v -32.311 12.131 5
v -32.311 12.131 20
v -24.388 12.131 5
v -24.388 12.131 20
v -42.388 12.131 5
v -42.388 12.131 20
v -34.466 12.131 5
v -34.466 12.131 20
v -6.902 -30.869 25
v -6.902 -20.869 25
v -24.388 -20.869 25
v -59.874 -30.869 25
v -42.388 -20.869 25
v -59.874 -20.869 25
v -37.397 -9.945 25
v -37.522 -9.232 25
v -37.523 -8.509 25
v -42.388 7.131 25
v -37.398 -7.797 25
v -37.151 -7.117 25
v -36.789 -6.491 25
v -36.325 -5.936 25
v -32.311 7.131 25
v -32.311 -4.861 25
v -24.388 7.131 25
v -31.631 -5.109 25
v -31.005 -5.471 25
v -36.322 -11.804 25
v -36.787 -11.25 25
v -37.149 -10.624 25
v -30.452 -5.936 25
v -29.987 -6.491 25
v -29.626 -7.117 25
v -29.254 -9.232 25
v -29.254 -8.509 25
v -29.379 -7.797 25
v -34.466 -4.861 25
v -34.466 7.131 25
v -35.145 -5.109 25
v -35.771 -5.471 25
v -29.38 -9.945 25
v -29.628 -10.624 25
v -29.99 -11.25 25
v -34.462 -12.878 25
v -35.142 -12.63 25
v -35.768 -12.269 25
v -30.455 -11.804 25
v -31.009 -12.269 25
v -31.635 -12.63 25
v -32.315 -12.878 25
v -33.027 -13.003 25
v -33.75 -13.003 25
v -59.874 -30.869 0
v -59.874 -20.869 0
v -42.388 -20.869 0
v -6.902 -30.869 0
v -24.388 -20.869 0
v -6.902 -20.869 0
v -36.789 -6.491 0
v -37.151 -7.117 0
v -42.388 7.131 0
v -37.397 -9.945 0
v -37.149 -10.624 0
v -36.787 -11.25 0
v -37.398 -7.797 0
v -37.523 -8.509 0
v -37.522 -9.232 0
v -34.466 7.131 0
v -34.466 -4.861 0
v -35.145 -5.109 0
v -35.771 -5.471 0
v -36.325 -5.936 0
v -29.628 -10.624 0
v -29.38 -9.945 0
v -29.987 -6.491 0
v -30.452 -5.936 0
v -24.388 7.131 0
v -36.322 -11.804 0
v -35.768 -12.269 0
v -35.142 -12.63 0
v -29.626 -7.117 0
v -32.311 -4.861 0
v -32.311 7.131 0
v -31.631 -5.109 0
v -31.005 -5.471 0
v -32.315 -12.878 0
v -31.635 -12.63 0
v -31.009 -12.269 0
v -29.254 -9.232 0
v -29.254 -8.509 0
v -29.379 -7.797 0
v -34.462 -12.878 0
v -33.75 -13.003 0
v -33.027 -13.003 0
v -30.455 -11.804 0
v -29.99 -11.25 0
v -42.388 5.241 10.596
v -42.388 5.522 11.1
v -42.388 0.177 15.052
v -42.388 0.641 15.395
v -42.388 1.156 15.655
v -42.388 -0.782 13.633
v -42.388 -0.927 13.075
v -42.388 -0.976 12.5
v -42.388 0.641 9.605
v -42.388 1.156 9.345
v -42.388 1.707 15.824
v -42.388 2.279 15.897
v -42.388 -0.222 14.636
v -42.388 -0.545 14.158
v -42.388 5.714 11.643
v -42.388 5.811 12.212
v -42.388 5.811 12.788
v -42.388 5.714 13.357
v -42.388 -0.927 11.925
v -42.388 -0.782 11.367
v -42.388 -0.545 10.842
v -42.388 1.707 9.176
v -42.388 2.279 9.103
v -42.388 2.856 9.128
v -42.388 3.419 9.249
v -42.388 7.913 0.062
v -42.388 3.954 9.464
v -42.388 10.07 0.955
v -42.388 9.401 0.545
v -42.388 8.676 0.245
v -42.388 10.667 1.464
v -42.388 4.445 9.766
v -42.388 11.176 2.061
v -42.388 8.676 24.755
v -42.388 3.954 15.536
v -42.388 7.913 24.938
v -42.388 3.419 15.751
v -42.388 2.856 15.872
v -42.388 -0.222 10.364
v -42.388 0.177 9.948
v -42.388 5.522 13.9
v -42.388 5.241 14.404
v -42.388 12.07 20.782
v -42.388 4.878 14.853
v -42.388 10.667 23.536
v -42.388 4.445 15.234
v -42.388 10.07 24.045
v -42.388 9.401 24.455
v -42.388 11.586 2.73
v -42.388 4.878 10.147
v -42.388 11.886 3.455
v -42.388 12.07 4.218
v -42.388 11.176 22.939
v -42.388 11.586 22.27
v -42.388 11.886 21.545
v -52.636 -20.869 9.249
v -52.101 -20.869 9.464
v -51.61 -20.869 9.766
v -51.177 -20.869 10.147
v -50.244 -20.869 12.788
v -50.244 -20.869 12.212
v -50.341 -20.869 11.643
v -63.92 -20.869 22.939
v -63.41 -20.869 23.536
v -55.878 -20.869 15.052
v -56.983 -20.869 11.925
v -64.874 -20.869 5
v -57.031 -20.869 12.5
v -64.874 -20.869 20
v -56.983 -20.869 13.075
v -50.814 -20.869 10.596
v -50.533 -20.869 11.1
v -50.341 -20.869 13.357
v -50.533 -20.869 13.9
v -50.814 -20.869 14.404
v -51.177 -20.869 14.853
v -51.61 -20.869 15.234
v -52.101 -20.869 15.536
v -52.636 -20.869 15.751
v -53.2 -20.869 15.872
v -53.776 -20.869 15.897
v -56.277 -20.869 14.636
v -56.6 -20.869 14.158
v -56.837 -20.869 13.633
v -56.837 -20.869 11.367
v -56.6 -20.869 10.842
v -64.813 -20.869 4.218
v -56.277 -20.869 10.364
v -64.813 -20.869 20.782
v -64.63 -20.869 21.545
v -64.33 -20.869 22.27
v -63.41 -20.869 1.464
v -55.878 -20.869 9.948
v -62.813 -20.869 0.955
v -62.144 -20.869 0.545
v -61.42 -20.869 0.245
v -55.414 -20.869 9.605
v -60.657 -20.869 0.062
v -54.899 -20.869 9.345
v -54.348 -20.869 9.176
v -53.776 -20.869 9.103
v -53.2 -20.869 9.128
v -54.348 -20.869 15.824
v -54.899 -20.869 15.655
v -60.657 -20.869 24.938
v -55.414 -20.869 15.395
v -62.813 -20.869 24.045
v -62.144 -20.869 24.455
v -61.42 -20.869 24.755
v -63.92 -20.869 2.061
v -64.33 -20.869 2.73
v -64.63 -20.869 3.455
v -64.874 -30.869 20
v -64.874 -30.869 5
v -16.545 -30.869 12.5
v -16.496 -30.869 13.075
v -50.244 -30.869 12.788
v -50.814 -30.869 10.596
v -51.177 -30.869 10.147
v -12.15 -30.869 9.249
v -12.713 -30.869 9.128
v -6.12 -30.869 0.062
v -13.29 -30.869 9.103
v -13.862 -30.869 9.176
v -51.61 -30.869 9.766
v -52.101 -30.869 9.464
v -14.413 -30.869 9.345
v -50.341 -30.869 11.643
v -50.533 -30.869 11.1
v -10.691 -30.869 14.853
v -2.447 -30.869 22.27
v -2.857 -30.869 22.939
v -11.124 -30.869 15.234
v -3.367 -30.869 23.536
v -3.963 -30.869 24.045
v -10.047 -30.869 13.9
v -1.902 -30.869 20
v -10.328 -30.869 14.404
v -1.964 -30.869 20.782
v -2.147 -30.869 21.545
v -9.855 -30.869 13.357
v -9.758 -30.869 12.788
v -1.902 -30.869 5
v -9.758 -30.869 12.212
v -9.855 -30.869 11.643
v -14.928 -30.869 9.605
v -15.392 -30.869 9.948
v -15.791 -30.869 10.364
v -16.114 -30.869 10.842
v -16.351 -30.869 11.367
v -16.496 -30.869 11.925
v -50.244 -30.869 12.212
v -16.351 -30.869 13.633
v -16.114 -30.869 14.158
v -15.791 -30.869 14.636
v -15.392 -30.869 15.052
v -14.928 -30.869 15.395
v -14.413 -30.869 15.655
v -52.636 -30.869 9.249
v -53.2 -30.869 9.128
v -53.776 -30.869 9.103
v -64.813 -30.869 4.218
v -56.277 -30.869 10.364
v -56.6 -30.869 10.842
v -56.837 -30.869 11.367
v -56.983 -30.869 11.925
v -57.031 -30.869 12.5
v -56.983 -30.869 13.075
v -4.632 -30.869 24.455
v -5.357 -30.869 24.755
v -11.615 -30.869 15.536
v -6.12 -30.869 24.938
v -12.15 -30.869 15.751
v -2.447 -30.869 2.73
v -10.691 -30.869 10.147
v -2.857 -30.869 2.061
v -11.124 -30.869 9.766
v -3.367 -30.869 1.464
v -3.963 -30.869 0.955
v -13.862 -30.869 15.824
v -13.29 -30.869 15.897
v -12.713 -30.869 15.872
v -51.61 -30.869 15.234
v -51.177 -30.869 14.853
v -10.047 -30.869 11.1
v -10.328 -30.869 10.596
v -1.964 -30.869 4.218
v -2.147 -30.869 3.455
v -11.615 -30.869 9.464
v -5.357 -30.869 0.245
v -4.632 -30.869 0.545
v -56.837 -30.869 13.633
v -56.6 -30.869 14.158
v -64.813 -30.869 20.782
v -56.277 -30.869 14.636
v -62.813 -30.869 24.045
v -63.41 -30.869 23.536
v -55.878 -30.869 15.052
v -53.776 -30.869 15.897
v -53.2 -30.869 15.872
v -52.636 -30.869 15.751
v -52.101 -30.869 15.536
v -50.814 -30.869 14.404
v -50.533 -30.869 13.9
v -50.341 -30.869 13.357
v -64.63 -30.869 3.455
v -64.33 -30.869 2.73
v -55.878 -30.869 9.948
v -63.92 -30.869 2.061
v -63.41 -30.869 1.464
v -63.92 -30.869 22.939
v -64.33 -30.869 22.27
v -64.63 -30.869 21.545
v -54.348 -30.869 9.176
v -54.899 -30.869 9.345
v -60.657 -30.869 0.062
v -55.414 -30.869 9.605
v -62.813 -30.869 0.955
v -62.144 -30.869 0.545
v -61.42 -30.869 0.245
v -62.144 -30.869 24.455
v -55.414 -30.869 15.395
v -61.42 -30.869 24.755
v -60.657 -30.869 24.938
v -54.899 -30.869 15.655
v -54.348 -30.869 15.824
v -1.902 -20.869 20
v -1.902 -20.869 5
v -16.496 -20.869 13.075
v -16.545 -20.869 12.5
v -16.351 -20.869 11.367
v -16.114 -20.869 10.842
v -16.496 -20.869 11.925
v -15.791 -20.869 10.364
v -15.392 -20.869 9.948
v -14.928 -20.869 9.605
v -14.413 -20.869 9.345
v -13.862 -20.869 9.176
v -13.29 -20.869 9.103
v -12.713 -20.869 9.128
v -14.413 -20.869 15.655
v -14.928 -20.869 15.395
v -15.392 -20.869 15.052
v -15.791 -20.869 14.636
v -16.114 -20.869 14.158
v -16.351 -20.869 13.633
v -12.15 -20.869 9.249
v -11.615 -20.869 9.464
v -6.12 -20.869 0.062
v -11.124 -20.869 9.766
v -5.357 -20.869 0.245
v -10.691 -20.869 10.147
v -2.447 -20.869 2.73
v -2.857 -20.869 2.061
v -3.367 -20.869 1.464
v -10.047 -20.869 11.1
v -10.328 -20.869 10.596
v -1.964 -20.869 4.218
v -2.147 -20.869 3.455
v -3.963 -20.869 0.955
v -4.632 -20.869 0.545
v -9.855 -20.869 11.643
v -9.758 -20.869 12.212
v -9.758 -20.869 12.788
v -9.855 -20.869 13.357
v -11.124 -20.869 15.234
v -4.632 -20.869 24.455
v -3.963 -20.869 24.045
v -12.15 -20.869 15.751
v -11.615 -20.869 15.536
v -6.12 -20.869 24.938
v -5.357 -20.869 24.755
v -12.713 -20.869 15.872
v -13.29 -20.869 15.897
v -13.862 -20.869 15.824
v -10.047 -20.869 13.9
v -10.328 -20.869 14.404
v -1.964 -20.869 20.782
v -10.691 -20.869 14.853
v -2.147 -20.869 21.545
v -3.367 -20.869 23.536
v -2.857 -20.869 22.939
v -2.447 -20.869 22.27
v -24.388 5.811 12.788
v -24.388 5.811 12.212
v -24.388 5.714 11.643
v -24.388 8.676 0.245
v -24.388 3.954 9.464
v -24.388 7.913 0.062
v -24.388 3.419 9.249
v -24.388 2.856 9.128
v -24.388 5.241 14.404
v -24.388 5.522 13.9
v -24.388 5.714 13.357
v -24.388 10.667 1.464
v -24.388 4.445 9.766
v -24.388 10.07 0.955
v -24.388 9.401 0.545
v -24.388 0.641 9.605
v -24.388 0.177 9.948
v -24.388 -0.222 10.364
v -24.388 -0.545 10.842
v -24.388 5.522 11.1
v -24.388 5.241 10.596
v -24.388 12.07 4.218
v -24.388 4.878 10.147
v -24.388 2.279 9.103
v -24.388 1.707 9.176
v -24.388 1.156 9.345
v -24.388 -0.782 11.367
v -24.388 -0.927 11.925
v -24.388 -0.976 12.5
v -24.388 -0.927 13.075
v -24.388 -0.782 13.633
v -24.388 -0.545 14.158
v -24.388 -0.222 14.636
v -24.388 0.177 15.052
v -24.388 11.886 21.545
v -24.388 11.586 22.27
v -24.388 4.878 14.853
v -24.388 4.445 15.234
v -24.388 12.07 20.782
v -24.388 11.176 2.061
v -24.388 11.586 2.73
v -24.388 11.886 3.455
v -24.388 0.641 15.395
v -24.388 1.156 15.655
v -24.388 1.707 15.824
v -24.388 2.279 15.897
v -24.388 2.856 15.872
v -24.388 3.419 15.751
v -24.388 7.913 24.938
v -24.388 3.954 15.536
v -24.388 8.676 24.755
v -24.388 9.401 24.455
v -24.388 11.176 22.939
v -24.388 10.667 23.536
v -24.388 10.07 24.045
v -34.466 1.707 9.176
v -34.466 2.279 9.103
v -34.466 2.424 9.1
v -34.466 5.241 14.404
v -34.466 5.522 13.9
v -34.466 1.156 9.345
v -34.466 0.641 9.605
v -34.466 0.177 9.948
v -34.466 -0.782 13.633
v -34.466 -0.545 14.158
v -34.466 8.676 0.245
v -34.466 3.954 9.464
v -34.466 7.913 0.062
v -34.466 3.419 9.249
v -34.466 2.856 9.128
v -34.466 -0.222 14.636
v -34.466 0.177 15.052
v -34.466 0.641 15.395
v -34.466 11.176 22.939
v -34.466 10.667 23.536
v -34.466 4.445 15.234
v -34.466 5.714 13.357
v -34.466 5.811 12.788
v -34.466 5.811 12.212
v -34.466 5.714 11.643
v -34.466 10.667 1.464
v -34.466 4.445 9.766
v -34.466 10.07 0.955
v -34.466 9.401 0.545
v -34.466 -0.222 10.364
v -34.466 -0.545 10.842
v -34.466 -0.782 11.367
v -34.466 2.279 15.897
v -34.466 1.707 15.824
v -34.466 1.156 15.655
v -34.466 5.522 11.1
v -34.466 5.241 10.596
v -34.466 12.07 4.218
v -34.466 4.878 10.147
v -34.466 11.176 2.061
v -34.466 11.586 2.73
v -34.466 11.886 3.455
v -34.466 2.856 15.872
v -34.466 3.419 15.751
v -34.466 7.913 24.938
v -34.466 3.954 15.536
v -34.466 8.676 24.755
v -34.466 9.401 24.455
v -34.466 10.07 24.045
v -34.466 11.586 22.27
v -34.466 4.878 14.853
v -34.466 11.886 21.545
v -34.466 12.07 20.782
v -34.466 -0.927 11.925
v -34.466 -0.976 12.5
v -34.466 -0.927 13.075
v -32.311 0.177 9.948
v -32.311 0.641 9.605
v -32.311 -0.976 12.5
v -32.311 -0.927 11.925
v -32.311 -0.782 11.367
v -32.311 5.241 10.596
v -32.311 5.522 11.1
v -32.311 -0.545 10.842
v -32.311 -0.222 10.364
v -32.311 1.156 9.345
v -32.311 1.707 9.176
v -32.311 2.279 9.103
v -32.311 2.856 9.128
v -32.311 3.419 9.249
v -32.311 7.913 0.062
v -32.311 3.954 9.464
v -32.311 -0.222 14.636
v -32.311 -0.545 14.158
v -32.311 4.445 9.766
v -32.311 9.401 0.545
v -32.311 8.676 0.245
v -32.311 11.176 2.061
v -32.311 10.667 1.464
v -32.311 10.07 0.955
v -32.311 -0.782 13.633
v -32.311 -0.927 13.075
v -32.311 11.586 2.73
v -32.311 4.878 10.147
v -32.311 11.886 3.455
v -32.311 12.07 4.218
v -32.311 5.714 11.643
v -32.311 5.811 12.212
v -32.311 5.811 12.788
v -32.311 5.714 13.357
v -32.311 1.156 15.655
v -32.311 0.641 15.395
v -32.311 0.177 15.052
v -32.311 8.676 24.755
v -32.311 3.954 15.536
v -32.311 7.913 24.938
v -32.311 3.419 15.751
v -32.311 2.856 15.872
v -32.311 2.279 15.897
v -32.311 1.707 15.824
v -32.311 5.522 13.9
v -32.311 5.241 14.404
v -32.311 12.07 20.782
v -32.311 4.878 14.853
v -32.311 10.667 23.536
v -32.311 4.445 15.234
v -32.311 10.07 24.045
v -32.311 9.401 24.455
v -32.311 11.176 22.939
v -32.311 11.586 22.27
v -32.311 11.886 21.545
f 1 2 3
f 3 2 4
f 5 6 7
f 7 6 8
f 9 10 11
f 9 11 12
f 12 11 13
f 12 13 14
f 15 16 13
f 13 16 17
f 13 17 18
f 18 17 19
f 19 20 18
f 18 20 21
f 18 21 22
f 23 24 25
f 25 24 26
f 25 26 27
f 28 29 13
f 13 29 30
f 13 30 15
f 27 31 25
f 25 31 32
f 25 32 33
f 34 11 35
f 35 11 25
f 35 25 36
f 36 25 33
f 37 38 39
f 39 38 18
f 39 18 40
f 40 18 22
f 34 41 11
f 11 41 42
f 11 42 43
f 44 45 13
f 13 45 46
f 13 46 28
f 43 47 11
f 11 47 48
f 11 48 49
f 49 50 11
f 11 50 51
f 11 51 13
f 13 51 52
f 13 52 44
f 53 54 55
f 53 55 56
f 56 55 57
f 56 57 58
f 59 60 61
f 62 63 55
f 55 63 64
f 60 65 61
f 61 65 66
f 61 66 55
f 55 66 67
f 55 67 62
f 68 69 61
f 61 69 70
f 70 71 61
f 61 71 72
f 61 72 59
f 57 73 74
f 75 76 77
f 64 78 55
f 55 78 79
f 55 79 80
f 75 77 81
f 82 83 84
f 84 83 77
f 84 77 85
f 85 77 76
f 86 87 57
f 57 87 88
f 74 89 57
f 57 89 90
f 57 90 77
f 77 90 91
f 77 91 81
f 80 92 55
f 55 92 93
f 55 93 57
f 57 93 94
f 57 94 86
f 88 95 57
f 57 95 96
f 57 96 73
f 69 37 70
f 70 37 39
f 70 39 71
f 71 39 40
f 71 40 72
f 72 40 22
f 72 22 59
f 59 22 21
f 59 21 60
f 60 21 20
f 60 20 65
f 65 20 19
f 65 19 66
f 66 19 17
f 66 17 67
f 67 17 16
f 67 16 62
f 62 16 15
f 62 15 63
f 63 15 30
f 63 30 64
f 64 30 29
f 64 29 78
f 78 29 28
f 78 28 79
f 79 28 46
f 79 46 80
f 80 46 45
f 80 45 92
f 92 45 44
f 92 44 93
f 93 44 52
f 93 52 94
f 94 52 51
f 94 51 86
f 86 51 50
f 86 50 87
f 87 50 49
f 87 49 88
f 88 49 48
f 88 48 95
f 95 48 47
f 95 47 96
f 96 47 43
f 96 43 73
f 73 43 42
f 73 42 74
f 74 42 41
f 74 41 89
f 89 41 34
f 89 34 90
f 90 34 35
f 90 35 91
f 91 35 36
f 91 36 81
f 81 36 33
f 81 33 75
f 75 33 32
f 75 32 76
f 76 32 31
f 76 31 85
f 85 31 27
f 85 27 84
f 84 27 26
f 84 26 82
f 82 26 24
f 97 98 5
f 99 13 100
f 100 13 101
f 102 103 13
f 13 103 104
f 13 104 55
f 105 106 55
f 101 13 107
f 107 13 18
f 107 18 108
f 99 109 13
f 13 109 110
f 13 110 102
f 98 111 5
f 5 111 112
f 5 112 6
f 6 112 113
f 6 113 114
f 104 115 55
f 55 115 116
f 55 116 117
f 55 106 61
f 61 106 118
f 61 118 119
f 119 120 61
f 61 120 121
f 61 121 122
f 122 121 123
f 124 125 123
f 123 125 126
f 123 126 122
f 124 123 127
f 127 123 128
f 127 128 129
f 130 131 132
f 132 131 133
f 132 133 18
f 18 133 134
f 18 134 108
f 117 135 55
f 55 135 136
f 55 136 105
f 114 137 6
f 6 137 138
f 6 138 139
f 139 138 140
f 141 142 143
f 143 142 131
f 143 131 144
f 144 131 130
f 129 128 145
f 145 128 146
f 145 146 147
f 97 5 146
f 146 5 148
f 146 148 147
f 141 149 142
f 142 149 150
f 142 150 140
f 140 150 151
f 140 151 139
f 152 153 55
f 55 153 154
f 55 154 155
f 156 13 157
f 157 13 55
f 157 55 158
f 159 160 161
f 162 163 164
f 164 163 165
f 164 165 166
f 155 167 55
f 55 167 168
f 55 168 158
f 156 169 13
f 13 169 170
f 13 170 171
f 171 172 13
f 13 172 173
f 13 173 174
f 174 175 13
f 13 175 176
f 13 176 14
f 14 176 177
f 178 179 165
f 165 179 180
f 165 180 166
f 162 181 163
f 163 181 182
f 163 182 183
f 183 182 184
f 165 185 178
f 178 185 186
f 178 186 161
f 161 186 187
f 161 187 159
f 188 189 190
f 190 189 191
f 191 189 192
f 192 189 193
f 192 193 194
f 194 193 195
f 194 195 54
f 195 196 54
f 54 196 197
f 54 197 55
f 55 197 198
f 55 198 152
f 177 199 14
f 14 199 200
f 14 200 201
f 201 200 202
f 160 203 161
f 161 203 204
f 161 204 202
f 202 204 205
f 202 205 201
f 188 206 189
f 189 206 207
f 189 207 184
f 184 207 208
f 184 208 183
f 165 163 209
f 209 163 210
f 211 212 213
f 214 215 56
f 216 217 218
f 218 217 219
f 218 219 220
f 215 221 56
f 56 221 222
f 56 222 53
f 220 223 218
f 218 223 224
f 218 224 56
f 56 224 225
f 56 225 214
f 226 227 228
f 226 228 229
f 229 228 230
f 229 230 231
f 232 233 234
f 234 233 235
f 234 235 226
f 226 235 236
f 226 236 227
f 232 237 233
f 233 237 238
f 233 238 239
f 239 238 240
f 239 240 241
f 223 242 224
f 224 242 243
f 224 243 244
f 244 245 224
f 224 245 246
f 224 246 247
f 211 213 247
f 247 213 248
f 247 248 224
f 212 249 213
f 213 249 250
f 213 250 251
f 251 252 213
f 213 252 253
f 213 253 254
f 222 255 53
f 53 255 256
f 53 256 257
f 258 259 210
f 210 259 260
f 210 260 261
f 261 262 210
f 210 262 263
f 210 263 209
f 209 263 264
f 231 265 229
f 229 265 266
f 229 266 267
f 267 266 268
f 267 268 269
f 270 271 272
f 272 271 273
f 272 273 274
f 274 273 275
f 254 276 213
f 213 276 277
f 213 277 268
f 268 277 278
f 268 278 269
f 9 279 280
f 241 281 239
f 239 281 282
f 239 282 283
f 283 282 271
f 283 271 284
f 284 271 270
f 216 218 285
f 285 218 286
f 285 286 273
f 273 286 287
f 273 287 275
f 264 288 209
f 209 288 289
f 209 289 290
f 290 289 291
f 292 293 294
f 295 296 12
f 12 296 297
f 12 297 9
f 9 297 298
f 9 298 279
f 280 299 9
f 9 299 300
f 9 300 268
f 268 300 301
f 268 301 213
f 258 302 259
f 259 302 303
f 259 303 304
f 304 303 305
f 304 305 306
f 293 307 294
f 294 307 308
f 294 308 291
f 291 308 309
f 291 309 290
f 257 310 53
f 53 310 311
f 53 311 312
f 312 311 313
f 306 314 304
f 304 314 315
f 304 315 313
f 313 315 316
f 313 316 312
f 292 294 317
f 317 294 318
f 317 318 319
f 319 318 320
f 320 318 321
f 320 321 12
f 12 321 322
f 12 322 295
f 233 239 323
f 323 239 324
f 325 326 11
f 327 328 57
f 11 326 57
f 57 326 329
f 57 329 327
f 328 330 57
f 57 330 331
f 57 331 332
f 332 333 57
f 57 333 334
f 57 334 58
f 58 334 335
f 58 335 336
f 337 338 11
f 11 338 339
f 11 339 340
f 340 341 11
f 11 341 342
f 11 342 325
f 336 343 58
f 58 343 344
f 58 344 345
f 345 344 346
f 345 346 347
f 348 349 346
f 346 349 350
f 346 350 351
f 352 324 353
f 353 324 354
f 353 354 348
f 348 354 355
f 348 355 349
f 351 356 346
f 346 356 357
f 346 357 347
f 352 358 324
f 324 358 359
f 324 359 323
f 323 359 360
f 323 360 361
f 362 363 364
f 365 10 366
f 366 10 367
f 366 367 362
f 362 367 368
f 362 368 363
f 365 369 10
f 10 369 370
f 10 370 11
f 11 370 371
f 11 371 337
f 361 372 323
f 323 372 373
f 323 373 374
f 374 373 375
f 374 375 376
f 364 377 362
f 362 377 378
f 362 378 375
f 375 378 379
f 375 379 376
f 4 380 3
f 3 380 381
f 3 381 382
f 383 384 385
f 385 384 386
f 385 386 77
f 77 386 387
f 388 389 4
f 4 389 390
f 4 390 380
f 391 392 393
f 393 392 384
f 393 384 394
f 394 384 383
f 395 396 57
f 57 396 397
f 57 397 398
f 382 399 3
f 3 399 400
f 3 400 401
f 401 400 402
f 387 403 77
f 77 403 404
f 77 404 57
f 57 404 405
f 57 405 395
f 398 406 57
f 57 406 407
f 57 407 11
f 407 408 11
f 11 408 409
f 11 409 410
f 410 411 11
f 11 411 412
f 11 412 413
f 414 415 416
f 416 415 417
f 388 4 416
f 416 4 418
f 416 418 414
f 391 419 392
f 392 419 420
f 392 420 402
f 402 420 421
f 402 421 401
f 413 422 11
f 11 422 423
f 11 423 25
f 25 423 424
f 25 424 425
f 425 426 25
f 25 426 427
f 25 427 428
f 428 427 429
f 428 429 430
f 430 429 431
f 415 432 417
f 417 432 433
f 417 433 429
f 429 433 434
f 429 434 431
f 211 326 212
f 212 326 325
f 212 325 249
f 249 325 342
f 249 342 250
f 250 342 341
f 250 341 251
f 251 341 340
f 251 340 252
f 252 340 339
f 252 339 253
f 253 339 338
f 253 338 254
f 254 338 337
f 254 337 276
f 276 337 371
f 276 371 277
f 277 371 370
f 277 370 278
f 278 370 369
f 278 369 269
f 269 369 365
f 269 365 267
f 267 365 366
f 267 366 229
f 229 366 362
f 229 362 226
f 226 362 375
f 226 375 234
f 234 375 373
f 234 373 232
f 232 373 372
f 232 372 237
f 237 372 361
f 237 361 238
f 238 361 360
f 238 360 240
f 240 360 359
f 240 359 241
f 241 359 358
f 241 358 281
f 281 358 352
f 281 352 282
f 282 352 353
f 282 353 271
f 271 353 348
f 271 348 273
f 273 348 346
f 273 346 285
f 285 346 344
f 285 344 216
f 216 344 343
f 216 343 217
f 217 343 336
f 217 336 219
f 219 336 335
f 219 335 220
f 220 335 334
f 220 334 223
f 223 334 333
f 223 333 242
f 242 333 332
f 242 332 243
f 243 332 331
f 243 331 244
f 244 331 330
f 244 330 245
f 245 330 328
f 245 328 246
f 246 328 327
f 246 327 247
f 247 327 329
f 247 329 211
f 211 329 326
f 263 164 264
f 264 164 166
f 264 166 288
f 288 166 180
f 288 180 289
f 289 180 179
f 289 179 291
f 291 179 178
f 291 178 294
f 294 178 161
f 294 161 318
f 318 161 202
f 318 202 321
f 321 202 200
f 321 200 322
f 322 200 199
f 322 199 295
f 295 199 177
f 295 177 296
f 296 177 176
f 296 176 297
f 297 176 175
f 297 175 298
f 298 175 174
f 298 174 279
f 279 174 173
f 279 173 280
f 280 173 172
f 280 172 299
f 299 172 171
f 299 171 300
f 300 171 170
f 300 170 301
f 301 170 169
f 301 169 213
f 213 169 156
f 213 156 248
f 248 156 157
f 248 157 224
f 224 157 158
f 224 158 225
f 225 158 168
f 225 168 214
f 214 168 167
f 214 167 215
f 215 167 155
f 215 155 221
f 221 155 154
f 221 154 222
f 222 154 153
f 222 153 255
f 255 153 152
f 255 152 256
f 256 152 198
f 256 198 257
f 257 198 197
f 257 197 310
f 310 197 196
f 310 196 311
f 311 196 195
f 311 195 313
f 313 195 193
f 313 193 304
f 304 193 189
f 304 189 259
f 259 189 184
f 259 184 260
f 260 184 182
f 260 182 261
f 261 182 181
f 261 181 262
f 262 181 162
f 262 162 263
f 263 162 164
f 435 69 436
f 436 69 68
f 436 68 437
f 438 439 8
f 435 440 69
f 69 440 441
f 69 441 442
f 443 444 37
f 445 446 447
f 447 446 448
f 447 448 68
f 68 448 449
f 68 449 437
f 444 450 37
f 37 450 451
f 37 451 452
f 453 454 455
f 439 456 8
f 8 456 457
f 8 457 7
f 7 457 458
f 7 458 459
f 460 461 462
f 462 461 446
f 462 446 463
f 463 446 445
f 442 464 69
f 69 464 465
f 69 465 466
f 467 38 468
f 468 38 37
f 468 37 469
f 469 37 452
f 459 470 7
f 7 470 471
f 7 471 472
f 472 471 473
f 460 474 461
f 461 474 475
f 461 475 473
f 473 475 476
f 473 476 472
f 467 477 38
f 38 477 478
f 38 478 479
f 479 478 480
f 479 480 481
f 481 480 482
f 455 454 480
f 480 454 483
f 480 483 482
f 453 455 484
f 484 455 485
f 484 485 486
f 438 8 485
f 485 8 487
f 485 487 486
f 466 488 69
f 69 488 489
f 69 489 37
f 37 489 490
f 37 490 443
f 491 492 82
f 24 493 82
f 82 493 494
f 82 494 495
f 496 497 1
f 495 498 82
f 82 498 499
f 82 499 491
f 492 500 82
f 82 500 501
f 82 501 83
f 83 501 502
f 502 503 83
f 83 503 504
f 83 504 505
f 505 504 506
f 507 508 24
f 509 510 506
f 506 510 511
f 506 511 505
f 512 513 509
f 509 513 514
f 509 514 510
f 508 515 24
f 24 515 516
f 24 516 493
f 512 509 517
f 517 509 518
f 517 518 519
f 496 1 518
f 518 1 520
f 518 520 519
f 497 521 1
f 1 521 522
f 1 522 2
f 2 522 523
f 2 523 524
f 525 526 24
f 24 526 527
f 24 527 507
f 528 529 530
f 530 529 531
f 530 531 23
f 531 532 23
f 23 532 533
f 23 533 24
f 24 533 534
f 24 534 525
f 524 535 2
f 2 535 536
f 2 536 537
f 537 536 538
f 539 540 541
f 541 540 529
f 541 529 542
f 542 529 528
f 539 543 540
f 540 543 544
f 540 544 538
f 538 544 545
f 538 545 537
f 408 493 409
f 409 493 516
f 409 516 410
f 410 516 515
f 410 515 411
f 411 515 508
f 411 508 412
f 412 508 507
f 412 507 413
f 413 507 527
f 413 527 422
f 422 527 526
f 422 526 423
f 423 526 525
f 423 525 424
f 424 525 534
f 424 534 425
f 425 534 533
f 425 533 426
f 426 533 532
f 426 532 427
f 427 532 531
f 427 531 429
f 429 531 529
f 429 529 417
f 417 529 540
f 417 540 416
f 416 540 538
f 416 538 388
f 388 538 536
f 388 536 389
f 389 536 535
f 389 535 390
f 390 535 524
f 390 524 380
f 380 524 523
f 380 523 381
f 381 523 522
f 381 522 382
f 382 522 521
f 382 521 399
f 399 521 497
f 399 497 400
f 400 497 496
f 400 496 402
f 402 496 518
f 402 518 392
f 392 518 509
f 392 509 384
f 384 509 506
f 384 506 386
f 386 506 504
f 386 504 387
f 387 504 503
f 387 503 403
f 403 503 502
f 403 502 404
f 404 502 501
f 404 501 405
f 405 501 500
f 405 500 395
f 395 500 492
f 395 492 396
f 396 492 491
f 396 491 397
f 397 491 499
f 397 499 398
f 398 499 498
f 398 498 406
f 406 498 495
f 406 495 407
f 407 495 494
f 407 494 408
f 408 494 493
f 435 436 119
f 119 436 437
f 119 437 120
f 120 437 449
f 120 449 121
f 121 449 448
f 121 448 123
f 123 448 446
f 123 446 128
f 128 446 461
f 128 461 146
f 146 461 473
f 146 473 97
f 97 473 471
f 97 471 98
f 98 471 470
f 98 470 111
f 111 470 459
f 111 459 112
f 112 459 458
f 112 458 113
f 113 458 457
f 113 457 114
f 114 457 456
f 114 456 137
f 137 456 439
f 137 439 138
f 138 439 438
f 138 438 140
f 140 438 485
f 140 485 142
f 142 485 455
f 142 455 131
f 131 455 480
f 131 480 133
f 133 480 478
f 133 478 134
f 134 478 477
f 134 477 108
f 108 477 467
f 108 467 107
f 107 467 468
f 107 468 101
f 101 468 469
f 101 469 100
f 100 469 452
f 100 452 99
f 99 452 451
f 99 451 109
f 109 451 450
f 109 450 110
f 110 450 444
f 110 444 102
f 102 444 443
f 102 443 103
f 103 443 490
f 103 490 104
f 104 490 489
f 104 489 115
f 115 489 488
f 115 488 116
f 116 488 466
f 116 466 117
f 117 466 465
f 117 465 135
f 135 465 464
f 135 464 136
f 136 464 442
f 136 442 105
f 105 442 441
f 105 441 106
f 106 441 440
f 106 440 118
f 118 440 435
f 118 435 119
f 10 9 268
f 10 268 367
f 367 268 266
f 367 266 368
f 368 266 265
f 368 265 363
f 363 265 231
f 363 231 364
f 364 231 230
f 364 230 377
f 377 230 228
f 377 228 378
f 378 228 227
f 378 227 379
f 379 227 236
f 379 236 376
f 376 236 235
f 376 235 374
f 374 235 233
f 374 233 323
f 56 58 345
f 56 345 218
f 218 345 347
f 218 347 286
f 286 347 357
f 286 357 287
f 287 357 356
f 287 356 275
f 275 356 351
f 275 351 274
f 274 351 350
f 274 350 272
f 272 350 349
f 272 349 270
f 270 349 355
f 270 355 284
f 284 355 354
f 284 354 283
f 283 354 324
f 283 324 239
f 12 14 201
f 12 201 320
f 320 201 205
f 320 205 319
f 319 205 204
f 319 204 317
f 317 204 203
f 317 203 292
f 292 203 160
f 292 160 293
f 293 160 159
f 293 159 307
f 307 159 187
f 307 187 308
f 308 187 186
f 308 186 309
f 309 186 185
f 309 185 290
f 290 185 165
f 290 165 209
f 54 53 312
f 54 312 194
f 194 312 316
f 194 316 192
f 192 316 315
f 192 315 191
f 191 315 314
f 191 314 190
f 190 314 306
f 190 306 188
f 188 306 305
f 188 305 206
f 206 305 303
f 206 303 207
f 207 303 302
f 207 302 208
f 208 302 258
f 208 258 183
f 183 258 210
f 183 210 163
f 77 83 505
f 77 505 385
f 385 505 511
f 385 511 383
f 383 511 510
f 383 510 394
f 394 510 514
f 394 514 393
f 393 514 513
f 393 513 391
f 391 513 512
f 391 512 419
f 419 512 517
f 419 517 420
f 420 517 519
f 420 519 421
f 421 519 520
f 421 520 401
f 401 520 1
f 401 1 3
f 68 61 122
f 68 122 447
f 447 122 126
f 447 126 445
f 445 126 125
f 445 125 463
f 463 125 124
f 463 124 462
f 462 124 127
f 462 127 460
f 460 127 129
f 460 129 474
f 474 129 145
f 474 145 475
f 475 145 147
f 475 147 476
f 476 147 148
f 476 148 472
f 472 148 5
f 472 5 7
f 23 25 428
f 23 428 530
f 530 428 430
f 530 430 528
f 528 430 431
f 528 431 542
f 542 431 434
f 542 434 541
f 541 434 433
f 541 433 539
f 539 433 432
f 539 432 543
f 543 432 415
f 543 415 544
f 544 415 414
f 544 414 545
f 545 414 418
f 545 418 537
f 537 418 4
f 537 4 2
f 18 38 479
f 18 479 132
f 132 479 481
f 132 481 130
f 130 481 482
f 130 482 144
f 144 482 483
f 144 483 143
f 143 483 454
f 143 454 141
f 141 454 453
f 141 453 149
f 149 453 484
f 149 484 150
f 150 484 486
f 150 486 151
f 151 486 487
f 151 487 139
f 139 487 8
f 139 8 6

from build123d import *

# Parameters (mm, degrees)
BOSS_EXTRUDE3_DEPTH = 25
SKETCH9_R           = 4.15
CUT_EXTRUDE1_DEPTH  = 25
SKETCH10_R          = 3.4
CUT_EXTRUDE2_DEPTH  = 10
SKETCH11_W          = 2.155120977
SKETCH11_H          = 16.992336916
CUT_EXTRUDE3_DEPTH  = 25
CUT_EXTRUDE4_REACH  = 58.719
SKETCH12_R          = 3.4
FILLET1_R           = 5


with BuildPart() as part:
    # Sketch7 → Boss-Extrude3 (new body)
    with BuildSketch(Plane.XY):
        Polygon((-42.388340788, -20.868913389), (-64.874490575, -20.868913389), (-64.874490575, -30.868913389), (-1.902191, -30.868913389), (-1.902191, -20.868913389), (-24.388340788, -20.868913389), (-24.388340788, 12.131086611), (-42.388340788, 12.131086611), align=None)
    extrude(amount=BOSS_EXTRUDE3_DEPTH)

    # Sketch9 → Cut-Extrude1 (cut)
    with BuildSketch(Plane.XY.offset(25)):
        with Locations((-33.388340788, -8.868913389)):
            Circle(SKETCH9_R)
    extrude(amount=-CUT_EXTRUDE1_DEPTH, mode=Mode.SUBTRACT)

    # Sketch10 → Cut-Extrude2 (cut)
    with BuildSketch(Plane(origin=(0, -20.868913389, 0), x_dir=(-1, 0, 0), z_dir=(0, 1, 0))):
        with Locations((53.631415681, 12.5)):
            Circle(SKETCH10_R)
        with Locations((13.145265894, 12.5)):
            Circle(SKETCH10_R)
    extrude(amount=-CUT_EXTRUDE2_DEPTH, mode=Mode.SUBTRACT)

    # Sketch11 → Cut-Extrude3 (cut)
    with BuildSketch(Plane.XY):
        with Locations((-33.388340787, 3.634918153)):
            Rectangle(SKETCH11_W, SKETCH11_H)
    extrude(amount=CUT_EXTRUDE3_DEPTH, mode=Mode.SUBTRACT)

    # Cut-Extrude4: up to this face of the body (flat: up to its plane)
    cut_extrude4_end = Plane(part.part.faces().sort_by_distance((-24.388340788, -4.368913389, 12.5))[0])
    # Sketch12 → Cut-Extrude4 (cut, up to the picked face)
    with BuildSketch(Plane.ZY.offset(42.388340788), mode=Mode.PRIVATE) as cut_extrude4_sk1:
        with Locations(Location((12.5, 2.423670307, 0), (0, 0, 270))):
            Circle(SKETCH12_R)
    cut_extrude4_tool1 = split(extrude(cut_extrude4_sk1.sketch, amount=-CUT_EXTRUDE4_REACH, mode=Mode.PRIVATE), bisect_by=cut_extrude4_end, keep=Keep.BOTH, mode=Mode.PRIVATE)
    add(cut_extrude4_tool1.solids().sort_by(Axis((-42.388341, 2.42367, 12.5), (1, 0, 0)))[0], mode=Mode.SUBTRACT)

    # Fillet1
    fillet1_edges = [part.edges().sort_by_distance(p)[0] for p in [
        (-64.874490575, -25.868913389, 25),
        (-1.902191, -25.868913389, 25),
        (-28.349560543, 12.131086611, 25),
        (-38.427121032, 12.131086611, 0),
        (-38.427121032, 12.131086611, 25),
        (-28.349560543, 12.131086611, 0),
        (-1.902191, -25.868913389, 0),
        (-64.874490575, -25.868913389, 0),
    ]]
    fillet(fillet1_edges, radius=FILLET1_R)


solid = part.part
